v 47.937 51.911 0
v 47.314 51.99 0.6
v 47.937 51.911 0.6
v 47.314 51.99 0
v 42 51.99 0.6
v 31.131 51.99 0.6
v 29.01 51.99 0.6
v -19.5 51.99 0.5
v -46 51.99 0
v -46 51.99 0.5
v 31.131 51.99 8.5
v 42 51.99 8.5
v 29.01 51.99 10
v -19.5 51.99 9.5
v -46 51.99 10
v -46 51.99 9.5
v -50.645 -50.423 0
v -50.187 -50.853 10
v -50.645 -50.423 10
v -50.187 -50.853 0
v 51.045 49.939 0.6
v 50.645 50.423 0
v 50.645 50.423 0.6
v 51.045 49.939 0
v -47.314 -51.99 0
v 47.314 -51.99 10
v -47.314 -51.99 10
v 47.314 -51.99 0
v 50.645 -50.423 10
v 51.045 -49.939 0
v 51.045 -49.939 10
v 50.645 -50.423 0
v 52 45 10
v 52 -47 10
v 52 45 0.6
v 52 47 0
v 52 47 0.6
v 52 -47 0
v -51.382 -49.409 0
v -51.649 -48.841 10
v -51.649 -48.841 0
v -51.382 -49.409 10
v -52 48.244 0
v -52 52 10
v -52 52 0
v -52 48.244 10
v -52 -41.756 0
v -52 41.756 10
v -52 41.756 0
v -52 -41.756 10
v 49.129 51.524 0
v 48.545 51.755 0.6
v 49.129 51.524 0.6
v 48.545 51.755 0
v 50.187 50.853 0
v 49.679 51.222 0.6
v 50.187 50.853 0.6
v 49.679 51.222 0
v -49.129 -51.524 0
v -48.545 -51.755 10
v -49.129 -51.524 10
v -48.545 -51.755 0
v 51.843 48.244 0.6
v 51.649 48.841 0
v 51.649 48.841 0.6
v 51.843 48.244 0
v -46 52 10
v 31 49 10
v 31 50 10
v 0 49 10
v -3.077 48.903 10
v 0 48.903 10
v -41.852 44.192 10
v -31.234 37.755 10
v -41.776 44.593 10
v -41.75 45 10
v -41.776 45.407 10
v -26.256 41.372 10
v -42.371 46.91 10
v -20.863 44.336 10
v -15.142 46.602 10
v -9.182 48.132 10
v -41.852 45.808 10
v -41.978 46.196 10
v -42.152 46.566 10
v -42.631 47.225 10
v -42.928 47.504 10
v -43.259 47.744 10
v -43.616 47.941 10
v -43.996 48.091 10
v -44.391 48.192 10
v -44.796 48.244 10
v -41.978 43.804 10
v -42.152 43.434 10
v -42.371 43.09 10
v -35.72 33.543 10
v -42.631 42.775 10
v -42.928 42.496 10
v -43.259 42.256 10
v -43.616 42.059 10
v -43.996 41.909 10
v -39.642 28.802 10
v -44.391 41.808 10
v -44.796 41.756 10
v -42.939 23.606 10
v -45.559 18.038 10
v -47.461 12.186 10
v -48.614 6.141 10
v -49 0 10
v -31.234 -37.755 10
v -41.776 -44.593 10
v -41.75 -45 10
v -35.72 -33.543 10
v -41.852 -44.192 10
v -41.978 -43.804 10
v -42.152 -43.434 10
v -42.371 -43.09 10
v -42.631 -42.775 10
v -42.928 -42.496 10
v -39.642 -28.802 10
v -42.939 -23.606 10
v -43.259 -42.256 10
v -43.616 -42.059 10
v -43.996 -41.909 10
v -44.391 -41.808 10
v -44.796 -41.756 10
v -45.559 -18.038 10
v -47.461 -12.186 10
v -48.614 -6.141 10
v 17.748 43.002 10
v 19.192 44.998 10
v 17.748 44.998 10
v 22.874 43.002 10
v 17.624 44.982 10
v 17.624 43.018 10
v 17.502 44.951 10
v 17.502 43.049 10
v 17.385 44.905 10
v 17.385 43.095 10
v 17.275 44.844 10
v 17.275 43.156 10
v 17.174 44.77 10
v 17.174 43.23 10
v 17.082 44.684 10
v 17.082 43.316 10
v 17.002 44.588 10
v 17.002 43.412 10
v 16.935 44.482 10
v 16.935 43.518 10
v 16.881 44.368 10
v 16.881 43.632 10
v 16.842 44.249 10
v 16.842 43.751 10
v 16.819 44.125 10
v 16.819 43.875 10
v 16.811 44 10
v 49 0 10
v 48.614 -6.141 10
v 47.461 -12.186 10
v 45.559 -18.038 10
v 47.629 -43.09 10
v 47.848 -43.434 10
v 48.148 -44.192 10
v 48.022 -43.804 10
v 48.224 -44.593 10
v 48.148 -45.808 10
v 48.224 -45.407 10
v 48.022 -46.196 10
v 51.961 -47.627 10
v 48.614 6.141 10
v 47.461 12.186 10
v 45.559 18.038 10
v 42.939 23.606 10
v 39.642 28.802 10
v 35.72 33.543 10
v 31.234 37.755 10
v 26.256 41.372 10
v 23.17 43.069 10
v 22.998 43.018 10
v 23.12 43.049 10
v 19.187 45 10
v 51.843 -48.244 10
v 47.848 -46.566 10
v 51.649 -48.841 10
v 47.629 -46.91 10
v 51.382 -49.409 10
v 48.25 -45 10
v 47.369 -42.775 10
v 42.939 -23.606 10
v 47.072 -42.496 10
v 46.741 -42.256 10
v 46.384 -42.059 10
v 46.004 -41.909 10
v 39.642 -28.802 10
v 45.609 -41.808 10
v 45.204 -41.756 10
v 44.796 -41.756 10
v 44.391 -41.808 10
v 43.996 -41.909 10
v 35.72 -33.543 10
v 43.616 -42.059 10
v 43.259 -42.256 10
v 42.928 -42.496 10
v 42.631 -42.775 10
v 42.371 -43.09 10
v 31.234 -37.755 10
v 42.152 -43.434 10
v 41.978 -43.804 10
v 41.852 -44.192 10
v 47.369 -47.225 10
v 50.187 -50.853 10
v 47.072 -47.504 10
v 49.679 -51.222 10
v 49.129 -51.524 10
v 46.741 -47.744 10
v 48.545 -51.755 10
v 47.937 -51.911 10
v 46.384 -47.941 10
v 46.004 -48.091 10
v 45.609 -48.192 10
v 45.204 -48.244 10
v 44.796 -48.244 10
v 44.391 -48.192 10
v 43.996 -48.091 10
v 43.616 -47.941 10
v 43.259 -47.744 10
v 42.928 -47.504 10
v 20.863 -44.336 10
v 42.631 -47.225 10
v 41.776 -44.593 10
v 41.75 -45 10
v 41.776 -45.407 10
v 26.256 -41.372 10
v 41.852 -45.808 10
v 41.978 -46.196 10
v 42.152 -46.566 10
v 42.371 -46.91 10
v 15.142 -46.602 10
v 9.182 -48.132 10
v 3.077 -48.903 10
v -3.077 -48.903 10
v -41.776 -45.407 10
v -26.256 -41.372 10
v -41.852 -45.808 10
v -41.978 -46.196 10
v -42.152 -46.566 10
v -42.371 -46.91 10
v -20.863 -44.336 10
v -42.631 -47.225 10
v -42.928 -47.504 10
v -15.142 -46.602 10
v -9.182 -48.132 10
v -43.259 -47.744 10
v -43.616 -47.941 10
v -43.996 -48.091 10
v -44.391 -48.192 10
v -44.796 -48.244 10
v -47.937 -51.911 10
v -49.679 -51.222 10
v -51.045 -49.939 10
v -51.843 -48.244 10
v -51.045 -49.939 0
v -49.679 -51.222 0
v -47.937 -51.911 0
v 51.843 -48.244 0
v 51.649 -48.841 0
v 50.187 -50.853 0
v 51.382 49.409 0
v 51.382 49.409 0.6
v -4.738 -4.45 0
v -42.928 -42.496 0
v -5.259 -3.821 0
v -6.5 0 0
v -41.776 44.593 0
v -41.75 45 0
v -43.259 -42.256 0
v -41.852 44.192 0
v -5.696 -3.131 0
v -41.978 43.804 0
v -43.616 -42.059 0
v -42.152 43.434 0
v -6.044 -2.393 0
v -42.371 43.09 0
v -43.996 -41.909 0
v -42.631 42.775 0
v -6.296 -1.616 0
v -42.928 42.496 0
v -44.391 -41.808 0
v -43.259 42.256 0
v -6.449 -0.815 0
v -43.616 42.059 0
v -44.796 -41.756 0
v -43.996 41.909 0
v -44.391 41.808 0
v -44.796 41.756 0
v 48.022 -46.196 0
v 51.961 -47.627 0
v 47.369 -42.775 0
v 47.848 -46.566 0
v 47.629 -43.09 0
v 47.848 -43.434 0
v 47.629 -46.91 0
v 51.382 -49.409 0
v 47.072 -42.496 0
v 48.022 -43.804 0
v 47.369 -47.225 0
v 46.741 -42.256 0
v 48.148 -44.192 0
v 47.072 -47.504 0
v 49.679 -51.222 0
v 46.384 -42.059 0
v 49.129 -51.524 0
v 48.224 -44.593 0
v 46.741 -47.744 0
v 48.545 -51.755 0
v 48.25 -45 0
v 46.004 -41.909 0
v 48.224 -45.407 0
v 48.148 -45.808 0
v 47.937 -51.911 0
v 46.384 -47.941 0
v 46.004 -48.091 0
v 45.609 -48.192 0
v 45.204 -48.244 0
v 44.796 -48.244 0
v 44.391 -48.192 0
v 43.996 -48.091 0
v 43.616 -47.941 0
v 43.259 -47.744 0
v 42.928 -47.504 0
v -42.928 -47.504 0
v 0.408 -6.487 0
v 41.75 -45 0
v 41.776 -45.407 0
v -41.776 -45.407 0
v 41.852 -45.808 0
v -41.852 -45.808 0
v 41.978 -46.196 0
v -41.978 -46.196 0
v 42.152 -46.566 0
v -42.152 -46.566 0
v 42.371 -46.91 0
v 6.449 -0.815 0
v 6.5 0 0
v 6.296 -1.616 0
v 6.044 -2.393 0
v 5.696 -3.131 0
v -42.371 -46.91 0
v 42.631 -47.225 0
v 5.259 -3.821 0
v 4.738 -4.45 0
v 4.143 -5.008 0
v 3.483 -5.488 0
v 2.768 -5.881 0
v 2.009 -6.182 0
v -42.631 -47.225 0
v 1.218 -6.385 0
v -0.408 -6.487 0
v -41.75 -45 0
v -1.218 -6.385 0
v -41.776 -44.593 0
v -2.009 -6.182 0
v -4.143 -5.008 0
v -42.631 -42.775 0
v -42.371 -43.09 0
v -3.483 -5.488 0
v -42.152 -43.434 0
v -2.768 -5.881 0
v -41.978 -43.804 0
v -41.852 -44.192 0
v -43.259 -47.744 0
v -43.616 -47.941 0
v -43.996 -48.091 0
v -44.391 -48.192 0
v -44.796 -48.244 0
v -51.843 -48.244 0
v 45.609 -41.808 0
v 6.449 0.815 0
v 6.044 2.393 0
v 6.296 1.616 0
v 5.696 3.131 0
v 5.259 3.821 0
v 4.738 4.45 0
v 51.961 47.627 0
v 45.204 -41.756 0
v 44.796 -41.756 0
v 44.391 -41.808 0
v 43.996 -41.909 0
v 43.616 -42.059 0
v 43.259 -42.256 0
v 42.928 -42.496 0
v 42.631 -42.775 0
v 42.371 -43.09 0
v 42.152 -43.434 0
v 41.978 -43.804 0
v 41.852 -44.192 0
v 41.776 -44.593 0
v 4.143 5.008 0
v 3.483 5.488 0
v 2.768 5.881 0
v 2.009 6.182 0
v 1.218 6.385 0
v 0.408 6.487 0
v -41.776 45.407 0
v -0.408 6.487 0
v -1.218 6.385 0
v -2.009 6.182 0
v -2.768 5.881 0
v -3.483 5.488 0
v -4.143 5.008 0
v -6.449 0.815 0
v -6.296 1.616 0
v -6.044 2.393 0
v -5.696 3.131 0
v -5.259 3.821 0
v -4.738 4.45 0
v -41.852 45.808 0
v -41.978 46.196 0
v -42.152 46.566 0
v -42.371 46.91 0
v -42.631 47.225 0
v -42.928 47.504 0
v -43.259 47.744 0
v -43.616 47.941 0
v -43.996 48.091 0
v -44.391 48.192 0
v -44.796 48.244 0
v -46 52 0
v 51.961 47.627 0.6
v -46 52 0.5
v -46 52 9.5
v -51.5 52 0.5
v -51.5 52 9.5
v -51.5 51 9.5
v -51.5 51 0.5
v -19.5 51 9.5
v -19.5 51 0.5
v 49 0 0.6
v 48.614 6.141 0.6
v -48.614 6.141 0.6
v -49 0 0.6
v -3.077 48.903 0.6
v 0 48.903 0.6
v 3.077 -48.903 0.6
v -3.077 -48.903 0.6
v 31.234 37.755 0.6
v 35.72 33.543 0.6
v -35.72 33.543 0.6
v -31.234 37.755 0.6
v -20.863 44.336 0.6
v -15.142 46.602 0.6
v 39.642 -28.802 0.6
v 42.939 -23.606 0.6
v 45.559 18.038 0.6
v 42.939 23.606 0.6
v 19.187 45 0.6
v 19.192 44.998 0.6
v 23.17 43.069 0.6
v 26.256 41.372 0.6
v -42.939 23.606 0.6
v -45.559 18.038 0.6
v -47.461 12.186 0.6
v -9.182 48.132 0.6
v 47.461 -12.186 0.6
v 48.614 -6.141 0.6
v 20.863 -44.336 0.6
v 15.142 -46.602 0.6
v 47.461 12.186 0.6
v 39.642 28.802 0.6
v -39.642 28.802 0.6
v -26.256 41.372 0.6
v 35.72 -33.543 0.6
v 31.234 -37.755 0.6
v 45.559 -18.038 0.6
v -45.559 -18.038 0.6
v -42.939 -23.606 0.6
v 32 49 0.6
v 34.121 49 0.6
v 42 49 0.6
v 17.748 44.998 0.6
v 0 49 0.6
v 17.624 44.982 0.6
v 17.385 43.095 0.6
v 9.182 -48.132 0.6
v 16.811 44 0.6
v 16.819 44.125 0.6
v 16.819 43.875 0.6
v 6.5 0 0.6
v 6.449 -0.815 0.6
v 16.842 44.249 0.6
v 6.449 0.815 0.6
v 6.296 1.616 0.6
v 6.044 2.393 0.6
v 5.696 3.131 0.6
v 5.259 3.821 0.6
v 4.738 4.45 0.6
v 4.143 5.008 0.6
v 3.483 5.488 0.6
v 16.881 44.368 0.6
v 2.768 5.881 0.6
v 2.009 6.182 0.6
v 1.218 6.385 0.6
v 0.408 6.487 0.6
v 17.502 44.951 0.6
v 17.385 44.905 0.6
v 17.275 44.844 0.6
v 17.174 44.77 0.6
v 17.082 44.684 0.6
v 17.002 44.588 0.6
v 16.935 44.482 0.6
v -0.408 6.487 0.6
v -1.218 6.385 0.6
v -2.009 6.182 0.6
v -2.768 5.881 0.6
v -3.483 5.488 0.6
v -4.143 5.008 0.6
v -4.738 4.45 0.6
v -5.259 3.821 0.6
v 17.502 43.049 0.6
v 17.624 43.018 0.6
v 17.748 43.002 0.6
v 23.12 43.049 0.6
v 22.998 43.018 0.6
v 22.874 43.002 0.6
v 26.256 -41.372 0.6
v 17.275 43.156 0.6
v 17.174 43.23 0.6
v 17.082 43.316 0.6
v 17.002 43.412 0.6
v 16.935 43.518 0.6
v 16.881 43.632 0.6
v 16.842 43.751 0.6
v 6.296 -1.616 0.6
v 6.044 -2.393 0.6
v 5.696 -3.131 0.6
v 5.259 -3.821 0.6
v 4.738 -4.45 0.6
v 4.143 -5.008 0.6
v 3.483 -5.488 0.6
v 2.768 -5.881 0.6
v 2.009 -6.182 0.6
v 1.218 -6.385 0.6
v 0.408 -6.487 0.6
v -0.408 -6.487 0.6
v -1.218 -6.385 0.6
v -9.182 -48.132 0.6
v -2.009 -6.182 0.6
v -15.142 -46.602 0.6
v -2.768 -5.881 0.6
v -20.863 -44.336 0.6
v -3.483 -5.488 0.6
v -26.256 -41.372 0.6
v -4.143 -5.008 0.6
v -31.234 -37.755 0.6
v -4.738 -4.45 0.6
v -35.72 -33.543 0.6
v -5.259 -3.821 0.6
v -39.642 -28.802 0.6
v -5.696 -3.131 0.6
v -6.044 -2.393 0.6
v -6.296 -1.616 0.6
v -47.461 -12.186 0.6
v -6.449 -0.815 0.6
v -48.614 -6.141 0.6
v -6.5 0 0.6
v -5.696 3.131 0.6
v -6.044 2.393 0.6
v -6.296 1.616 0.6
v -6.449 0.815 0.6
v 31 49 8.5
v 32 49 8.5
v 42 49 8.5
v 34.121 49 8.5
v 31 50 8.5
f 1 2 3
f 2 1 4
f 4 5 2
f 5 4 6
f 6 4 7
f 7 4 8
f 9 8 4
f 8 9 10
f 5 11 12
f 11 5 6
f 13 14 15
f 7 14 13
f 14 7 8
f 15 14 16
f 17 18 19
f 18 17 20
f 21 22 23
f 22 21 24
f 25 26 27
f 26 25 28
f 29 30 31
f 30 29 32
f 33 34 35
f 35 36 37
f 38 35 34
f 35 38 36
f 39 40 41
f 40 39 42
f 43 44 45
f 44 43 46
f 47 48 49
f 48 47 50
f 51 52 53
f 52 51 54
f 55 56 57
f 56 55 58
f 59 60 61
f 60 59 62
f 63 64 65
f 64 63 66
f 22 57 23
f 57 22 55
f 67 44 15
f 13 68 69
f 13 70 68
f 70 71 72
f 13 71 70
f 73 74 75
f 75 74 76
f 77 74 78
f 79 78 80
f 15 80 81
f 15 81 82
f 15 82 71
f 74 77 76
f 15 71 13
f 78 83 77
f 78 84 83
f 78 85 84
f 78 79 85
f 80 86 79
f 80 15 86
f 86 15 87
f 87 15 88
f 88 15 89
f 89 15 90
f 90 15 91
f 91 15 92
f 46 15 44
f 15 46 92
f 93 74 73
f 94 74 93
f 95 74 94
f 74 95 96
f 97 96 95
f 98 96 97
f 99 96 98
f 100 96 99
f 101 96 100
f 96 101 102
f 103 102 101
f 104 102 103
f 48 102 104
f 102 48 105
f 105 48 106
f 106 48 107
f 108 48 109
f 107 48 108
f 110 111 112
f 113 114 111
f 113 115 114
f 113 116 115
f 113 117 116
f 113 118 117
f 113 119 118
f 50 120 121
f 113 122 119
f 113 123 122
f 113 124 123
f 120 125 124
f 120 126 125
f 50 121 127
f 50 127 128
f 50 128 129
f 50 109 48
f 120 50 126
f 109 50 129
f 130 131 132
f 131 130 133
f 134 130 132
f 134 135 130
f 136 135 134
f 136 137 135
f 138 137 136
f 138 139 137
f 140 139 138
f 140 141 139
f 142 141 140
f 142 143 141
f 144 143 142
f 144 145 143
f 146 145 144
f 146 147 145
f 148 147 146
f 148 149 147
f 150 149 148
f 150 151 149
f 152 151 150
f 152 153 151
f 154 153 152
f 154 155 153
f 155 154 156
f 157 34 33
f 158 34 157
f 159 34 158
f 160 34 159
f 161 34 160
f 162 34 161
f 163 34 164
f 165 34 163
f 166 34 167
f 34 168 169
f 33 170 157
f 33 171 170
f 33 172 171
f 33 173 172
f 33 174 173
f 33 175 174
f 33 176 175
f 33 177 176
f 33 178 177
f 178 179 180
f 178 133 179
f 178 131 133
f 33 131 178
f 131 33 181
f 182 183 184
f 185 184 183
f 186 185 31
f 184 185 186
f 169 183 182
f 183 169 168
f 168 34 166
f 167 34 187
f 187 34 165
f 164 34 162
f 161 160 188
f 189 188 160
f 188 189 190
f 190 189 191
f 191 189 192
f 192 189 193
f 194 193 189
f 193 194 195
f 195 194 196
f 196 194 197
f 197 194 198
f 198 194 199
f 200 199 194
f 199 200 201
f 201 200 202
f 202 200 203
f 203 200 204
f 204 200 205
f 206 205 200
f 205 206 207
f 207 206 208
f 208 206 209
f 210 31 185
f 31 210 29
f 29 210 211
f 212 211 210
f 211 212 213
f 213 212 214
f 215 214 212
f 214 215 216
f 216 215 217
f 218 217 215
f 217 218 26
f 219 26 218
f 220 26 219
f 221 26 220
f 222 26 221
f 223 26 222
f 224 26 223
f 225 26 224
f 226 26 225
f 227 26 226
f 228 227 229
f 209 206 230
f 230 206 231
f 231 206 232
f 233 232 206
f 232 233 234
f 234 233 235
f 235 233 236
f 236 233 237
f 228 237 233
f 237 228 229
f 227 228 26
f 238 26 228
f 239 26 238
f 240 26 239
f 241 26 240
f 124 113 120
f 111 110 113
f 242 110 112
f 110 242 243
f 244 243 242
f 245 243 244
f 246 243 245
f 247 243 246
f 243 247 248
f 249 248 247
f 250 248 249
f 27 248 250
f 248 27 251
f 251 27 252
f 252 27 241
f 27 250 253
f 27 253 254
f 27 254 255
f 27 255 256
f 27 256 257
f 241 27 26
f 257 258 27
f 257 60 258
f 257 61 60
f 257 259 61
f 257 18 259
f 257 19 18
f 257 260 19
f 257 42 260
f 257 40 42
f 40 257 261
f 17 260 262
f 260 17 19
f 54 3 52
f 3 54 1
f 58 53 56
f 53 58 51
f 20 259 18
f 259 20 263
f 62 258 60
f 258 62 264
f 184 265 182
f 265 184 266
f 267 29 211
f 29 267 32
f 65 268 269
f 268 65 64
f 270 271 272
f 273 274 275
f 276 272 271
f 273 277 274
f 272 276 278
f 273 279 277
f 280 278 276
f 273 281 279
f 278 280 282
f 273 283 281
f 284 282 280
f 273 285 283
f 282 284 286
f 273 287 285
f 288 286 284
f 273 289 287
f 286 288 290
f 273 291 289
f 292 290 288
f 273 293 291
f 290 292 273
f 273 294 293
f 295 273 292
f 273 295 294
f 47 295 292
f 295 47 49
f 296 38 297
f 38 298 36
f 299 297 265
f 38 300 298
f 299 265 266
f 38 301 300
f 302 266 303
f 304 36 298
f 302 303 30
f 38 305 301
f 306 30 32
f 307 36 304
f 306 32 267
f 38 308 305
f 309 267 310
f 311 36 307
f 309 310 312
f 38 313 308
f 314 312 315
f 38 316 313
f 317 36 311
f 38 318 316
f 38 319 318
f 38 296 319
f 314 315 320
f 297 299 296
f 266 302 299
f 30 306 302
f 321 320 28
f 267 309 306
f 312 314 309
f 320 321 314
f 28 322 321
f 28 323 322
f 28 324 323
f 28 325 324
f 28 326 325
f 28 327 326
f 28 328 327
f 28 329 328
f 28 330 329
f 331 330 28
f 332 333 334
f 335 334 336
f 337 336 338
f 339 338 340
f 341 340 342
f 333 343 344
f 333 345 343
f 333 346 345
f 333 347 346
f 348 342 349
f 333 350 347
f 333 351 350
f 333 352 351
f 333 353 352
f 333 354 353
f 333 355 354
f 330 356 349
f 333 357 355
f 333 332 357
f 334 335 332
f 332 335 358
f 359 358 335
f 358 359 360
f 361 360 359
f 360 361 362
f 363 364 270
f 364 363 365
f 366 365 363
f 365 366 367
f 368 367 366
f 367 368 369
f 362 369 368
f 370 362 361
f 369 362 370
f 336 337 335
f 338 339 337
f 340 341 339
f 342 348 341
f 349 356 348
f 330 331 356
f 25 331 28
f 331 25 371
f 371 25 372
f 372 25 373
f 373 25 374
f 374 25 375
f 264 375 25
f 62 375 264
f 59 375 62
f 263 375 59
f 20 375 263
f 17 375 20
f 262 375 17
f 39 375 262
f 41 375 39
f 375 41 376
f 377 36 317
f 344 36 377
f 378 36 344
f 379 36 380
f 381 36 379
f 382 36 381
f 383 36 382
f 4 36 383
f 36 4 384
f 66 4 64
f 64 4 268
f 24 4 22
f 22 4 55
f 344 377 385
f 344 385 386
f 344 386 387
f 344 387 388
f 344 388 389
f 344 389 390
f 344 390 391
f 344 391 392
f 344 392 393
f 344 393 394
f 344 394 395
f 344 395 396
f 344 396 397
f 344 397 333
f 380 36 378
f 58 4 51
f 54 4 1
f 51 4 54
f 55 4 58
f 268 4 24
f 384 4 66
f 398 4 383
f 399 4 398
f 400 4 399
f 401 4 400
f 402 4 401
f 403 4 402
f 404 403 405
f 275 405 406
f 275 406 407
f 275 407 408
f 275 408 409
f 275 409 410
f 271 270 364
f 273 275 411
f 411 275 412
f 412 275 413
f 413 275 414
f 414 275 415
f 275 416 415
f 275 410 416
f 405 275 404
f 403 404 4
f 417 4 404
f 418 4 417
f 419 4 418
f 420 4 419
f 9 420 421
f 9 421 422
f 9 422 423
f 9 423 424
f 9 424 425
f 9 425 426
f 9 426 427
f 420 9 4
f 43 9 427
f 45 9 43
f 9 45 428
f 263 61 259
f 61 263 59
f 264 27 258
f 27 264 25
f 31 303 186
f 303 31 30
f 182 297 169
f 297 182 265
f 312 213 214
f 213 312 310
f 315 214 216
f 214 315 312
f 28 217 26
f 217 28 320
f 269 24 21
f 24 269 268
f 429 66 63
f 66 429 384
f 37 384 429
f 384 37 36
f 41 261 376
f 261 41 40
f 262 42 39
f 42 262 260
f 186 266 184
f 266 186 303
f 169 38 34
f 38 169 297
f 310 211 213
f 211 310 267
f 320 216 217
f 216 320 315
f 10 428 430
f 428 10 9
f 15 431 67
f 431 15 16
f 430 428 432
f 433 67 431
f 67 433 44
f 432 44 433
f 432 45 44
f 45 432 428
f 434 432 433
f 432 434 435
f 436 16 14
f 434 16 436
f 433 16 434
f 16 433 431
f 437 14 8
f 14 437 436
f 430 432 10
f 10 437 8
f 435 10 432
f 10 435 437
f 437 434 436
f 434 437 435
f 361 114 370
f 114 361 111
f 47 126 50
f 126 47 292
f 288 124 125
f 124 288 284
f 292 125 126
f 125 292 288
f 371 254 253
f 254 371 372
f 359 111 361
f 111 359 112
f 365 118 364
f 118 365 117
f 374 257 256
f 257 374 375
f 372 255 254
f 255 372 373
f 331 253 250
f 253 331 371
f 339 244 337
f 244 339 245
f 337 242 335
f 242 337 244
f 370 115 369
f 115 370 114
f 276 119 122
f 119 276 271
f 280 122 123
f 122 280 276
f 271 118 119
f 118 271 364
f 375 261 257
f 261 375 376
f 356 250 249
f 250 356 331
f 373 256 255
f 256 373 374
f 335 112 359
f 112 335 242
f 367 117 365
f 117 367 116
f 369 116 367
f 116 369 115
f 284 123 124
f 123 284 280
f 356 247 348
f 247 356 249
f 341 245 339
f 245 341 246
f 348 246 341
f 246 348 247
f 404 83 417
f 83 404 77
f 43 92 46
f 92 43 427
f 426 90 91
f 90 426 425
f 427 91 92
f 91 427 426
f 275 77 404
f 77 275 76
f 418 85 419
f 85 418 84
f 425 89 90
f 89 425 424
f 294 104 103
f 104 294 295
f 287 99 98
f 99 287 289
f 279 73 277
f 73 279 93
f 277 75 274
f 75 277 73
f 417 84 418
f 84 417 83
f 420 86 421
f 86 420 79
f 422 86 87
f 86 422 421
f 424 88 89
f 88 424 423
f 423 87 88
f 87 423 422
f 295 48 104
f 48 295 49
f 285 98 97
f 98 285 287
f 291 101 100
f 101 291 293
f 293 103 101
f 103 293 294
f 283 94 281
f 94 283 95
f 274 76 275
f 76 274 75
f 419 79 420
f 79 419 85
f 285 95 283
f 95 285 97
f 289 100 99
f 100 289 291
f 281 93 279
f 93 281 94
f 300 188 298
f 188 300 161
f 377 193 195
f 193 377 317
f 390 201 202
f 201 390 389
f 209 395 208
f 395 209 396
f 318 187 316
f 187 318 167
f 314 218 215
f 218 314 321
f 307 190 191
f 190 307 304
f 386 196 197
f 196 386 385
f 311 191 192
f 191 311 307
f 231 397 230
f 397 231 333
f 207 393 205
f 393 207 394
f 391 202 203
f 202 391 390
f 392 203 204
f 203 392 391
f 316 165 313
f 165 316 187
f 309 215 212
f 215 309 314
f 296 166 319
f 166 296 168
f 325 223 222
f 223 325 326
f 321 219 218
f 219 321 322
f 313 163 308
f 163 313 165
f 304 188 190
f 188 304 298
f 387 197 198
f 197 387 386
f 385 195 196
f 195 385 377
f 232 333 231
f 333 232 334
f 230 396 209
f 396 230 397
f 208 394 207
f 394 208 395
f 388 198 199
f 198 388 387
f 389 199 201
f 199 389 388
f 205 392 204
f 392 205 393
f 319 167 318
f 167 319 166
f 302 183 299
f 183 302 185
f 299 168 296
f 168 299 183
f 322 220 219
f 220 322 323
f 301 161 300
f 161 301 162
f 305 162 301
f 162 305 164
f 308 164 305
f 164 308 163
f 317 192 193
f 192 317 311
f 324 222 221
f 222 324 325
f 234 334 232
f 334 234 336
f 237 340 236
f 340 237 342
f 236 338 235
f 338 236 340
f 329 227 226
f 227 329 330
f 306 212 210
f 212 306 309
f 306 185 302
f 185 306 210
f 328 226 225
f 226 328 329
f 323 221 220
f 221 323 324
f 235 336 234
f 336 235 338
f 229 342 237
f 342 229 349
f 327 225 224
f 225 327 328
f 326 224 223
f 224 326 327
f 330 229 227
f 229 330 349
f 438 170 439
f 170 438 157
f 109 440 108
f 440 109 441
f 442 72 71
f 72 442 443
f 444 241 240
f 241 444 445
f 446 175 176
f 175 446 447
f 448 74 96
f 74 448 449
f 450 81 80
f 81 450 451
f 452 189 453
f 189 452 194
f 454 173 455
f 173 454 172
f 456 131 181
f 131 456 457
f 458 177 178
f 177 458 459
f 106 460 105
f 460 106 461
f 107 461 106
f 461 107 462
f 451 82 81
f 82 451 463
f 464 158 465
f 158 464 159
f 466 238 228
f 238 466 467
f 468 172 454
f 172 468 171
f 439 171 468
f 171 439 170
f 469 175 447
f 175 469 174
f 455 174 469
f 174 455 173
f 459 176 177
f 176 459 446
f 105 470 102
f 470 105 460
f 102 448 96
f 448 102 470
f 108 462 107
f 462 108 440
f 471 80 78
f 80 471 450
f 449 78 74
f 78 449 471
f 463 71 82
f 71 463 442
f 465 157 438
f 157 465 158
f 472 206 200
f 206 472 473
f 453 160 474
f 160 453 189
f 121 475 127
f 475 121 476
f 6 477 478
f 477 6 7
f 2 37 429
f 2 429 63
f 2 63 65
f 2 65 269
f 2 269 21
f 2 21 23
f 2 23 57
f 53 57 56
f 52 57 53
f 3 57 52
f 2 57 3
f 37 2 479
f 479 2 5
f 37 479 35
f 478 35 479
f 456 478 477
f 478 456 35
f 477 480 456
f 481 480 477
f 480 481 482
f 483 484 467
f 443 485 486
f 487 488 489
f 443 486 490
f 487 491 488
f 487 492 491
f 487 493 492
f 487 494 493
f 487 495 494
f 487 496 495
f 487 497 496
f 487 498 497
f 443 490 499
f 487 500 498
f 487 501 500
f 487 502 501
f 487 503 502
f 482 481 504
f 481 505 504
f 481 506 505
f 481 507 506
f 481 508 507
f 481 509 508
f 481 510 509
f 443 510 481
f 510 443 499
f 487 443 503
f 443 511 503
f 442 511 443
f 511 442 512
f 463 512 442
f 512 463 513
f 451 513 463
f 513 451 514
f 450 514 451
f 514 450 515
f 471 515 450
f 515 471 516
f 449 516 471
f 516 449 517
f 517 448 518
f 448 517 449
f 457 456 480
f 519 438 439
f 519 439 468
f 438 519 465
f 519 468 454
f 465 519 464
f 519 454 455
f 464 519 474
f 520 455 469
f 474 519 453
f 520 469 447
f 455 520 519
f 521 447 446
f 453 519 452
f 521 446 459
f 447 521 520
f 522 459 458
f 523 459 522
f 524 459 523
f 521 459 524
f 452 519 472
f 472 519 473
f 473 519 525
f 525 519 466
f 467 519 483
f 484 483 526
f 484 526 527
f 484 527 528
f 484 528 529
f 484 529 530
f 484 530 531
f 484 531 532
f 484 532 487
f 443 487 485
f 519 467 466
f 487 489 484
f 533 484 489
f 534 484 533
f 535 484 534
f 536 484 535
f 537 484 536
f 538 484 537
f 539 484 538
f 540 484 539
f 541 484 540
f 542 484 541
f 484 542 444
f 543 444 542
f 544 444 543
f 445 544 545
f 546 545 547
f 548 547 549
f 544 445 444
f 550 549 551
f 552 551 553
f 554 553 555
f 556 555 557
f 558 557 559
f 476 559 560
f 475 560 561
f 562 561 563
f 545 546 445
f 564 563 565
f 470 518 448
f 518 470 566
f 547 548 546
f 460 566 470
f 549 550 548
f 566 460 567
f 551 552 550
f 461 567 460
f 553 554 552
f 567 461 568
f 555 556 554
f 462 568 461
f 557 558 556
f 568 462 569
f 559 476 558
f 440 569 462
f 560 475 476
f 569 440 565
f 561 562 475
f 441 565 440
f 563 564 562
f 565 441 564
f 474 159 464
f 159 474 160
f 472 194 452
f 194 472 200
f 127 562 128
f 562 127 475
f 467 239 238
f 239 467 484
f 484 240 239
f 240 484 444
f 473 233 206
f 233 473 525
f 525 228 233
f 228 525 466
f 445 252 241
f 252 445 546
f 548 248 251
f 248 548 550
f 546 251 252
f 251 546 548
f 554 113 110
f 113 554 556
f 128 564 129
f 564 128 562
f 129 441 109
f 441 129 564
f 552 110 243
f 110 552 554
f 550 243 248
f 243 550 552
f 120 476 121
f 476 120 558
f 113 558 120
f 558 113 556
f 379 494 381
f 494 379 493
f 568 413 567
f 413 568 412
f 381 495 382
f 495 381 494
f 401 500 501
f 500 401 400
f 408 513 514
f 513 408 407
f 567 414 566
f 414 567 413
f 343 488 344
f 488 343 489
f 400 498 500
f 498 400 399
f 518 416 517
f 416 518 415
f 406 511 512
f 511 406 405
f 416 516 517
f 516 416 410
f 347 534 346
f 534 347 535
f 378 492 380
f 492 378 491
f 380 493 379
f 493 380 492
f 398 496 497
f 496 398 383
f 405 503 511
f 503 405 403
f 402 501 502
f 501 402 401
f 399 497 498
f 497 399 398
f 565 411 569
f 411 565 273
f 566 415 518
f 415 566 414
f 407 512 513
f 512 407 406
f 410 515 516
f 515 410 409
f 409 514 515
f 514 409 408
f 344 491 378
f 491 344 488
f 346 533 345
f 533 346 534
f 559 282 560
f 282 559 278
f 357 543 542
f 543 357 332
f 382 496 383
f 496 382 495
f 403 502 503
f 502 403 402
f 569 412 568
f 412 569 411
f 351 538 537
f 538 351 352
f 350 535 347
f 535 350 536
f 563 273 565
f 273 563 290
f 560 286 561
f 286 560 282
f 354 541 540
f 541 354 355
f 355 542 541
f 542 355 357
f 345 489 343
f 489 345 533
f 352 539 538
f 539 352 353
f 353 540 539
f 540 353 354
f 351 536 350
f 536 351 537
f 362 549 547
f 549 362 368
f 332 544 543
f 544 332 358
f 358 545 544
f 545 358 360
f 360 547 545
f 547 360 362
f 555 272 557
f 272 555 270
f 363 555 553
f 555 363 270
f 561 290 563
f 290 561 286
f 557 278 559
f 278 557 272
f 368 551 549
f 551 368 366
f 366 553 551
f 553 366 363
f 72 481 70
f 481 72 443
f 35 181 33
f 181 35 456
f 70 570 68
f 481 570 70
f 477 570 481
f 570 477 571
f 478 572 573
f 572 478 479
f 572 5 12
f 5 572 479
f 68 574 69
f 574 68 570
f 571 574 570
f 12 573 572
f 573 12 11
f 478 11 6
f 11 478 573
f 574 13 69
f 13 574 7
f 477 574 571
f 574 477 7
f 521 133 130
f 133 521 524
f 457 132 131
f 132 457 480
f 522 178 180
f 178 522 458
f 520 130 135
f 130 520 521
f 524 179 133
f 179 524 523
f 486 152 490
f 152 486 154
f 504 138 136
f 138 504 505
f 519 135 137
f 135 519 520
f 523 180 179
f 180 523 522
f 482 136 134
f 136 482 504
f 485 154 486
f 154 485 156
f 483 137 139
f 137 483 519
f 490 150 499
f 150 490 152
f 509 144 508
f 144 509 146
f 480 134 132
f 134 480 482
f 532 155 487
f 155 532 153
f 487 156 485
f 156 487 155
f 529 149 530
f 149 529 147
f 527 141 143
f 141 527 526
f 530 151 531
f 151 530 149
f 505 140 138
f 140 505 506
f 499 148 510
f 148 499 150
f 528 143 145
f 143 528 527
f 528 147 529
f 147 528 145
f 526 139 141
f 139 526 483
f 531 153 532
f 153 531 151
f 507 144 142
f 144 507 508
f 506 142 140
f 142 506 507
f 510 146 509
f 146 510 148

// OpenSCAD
$fn = 50;


union() {
	difference() {
		union() {
			translate(v = [0, 0, 0]) {
				rotate(a = [0, 0, 0]) {
					hull() {
						translate(v = [-47.0000000000, 47.0000000000, 0]) {
							rotate(a = [0, 0, 0]) {
								translate(v = [0, 0, 0]) {
									rotate(a = [0, 0, 0]) {
										cylinder(h = 10, r = 5);
									}
								}
							}
						}
						translate(v = [47.0000000000, 47.0000000000, 0]) {
							rotate(a = [0, 0, 0]) {
								translate(v = [0, 0, 0]) {
									rotate(a = [0, 0, 0]) {
										cylinder(h = 10, r = 5);
									}
								}
							}
						}
						translate(v = [-47.0000000000, -47.0000000000, 0]) {
							rotate(a = [0, 0, 0]) {
								translate(v = [0, 0, 0]) {
									rotate(a = [0, 0, 0]) {
										cylinder(h = 10, r = 5);
									}
								}
							}
						}
						translate(v = [47.0000000000, -47.0000000000, 0]) {
							rotate(a = [0, 0, 0]) {
								translate(v = [0, 0, 0]) {
									rotate(a = [0, 0, 0]) {
										cylinder(h = 10, r = 5);
									}
								}
							}
						}
					}
				}
			}
			translate(v = [-52.0000000000, 46.0000000000, 0]) {
				rotate(a = [0, 0, 0]) {
					cube(size = [6, 6, 10]);
				}
			}
		}
		union() {
			#translate(v = [-51.5000000000, 51.0000000000, 0.5000000000]) {
				rotate(a = [0, 0, 0]) {
					cube(size = [32, 1, 9.0000000000]);
				}
			}
			translate(v = [-52.5000000000, -45.0000000000, -125]) {
				rotate(a = [0, 0, 0]) {
					hull() {
						translate(v = [7.5000000000, 0, 0]) {
							rotate(a = [0, 0, 0]) {
								translate(v = [0, 0, 0]) {
									rotate(a = [0, 0, 0]) {
										cylinder(h = 250, r = 3.2500000000);
									}
								}
							}
						}
						translate(v = [-7.5000000000, 0, 0]) {
							rotate(a = [0, 0, 0]) {
								translate(v = [0, 0, 0]) {
									rotate(a = [0, 0, 0]) {
										cylinder(h = 250, r = 3.2500000000);
									}
								}
							}
						}
					}
				}
			}
			translate(v = [-52.5000000000, 45.0000000000, -125]) {
				rotate(a = [0, 0, 0]) {
					hull() {
						translate(v = [7.5000000000, 0, 0]) {
							rotate(a = [0, 0, 0]) {
								translate(v = [0, 0, 0]) {
									rotate(a = [0, 0, 0]) {
										cylinder(h = 250, r = 3.2500000000);
									}
								}
							}
						}
						translate(v = [-7.5000000000, 0, 0]) {
							rotate(a = [0, 0, 0]) {
								translate(v = [0, 0, 0]) {
									rotate(a = [0, 0, 0]) {
										cylinder(h = 250, r = 3.2500000000);
									}
								}
							}
						}
					}
				}
			}
			translate(v = [45.0000000000, -45.0000000000, -125.0000000000]) {
				rotate(a = [0, 0, 0]) {
					cylinder(h = 250, r = 3.2500000000);
				}
			}
			translate(v = [0, 0, 0.6000000000]) {
				rotate(a = [0, 0, 0]) {
					cylinder(h = 12.4000000000, r = 49.0000000000);
				}
			}
			translate(v = [0, 0, -5.0000000000]) {
				rotate(a = [0, 0, 0]) {
					cylinder(h = 10, r = 6.5000000000);
				}
			}
			translate(v = [0.0000000000, 45.0000000000, 0.6000000000]) {
				rotate(a = [0, 0, 0]) {
					cube(size = [52.0000000000, 4, 12.4000000000]);
				}
			}
			translate(v = [42.0000000000, 45.0000000000, 0.6000000000]) {
				rotate(a = [0, 0, 0]) {
					cube(size = [10, 7, 12.4000000000]);
				}
			}
			translate(v = [31.0000000000, 45.0000000000, 8.5000000000]) {
				rotate(a = [0, 0, 0]) {
					cube(size = [21, 7, 1.5000000000]);
				}
			}
			translate(v = [28.2500000000, 52.7500000000, 0.6000000000]) {
				rotate(a = [0, 0, -45]) {
					cube(size = [7.5000000000, 1.5000000000, 12.4000000000]);
				}
			}
			translate(v = [11.0610000000, 43.0000000000, 0.6000000000]) {
				rotate(a = [0, 0, 0]) {
					cube(size = [7.5000000000, 2, 9.4000000000]);
				}
			}
		}
	}
	union() {
		translate(v = [20.3110000000, 44.0000000000, 0]) {
			rotate(a = [0, 0, 0]) {
				hull() {
					translate(v = [2.5000000000, 0, 0]) {
						rotate(a = [0, 0, 0]) {
							#translate(v = [0, 0, 0]) {
								rotate(a = [0, 0, 0]) {
									cylinder(h = 10, r = 1.0000000000);
								}
							}
						}
					}
					translate(v = [-2.5000000000, 0, 0]) {
						rotate(a = [0, 0, 0]) {
							#translate(v = [0, 0, 0]) {
								rotate(a = [0, 0, 0]) {
									cylinder(h = 10, r = 1.0000000000);
								}
							}
						}
					}
				}
			}
		}
	}
}
